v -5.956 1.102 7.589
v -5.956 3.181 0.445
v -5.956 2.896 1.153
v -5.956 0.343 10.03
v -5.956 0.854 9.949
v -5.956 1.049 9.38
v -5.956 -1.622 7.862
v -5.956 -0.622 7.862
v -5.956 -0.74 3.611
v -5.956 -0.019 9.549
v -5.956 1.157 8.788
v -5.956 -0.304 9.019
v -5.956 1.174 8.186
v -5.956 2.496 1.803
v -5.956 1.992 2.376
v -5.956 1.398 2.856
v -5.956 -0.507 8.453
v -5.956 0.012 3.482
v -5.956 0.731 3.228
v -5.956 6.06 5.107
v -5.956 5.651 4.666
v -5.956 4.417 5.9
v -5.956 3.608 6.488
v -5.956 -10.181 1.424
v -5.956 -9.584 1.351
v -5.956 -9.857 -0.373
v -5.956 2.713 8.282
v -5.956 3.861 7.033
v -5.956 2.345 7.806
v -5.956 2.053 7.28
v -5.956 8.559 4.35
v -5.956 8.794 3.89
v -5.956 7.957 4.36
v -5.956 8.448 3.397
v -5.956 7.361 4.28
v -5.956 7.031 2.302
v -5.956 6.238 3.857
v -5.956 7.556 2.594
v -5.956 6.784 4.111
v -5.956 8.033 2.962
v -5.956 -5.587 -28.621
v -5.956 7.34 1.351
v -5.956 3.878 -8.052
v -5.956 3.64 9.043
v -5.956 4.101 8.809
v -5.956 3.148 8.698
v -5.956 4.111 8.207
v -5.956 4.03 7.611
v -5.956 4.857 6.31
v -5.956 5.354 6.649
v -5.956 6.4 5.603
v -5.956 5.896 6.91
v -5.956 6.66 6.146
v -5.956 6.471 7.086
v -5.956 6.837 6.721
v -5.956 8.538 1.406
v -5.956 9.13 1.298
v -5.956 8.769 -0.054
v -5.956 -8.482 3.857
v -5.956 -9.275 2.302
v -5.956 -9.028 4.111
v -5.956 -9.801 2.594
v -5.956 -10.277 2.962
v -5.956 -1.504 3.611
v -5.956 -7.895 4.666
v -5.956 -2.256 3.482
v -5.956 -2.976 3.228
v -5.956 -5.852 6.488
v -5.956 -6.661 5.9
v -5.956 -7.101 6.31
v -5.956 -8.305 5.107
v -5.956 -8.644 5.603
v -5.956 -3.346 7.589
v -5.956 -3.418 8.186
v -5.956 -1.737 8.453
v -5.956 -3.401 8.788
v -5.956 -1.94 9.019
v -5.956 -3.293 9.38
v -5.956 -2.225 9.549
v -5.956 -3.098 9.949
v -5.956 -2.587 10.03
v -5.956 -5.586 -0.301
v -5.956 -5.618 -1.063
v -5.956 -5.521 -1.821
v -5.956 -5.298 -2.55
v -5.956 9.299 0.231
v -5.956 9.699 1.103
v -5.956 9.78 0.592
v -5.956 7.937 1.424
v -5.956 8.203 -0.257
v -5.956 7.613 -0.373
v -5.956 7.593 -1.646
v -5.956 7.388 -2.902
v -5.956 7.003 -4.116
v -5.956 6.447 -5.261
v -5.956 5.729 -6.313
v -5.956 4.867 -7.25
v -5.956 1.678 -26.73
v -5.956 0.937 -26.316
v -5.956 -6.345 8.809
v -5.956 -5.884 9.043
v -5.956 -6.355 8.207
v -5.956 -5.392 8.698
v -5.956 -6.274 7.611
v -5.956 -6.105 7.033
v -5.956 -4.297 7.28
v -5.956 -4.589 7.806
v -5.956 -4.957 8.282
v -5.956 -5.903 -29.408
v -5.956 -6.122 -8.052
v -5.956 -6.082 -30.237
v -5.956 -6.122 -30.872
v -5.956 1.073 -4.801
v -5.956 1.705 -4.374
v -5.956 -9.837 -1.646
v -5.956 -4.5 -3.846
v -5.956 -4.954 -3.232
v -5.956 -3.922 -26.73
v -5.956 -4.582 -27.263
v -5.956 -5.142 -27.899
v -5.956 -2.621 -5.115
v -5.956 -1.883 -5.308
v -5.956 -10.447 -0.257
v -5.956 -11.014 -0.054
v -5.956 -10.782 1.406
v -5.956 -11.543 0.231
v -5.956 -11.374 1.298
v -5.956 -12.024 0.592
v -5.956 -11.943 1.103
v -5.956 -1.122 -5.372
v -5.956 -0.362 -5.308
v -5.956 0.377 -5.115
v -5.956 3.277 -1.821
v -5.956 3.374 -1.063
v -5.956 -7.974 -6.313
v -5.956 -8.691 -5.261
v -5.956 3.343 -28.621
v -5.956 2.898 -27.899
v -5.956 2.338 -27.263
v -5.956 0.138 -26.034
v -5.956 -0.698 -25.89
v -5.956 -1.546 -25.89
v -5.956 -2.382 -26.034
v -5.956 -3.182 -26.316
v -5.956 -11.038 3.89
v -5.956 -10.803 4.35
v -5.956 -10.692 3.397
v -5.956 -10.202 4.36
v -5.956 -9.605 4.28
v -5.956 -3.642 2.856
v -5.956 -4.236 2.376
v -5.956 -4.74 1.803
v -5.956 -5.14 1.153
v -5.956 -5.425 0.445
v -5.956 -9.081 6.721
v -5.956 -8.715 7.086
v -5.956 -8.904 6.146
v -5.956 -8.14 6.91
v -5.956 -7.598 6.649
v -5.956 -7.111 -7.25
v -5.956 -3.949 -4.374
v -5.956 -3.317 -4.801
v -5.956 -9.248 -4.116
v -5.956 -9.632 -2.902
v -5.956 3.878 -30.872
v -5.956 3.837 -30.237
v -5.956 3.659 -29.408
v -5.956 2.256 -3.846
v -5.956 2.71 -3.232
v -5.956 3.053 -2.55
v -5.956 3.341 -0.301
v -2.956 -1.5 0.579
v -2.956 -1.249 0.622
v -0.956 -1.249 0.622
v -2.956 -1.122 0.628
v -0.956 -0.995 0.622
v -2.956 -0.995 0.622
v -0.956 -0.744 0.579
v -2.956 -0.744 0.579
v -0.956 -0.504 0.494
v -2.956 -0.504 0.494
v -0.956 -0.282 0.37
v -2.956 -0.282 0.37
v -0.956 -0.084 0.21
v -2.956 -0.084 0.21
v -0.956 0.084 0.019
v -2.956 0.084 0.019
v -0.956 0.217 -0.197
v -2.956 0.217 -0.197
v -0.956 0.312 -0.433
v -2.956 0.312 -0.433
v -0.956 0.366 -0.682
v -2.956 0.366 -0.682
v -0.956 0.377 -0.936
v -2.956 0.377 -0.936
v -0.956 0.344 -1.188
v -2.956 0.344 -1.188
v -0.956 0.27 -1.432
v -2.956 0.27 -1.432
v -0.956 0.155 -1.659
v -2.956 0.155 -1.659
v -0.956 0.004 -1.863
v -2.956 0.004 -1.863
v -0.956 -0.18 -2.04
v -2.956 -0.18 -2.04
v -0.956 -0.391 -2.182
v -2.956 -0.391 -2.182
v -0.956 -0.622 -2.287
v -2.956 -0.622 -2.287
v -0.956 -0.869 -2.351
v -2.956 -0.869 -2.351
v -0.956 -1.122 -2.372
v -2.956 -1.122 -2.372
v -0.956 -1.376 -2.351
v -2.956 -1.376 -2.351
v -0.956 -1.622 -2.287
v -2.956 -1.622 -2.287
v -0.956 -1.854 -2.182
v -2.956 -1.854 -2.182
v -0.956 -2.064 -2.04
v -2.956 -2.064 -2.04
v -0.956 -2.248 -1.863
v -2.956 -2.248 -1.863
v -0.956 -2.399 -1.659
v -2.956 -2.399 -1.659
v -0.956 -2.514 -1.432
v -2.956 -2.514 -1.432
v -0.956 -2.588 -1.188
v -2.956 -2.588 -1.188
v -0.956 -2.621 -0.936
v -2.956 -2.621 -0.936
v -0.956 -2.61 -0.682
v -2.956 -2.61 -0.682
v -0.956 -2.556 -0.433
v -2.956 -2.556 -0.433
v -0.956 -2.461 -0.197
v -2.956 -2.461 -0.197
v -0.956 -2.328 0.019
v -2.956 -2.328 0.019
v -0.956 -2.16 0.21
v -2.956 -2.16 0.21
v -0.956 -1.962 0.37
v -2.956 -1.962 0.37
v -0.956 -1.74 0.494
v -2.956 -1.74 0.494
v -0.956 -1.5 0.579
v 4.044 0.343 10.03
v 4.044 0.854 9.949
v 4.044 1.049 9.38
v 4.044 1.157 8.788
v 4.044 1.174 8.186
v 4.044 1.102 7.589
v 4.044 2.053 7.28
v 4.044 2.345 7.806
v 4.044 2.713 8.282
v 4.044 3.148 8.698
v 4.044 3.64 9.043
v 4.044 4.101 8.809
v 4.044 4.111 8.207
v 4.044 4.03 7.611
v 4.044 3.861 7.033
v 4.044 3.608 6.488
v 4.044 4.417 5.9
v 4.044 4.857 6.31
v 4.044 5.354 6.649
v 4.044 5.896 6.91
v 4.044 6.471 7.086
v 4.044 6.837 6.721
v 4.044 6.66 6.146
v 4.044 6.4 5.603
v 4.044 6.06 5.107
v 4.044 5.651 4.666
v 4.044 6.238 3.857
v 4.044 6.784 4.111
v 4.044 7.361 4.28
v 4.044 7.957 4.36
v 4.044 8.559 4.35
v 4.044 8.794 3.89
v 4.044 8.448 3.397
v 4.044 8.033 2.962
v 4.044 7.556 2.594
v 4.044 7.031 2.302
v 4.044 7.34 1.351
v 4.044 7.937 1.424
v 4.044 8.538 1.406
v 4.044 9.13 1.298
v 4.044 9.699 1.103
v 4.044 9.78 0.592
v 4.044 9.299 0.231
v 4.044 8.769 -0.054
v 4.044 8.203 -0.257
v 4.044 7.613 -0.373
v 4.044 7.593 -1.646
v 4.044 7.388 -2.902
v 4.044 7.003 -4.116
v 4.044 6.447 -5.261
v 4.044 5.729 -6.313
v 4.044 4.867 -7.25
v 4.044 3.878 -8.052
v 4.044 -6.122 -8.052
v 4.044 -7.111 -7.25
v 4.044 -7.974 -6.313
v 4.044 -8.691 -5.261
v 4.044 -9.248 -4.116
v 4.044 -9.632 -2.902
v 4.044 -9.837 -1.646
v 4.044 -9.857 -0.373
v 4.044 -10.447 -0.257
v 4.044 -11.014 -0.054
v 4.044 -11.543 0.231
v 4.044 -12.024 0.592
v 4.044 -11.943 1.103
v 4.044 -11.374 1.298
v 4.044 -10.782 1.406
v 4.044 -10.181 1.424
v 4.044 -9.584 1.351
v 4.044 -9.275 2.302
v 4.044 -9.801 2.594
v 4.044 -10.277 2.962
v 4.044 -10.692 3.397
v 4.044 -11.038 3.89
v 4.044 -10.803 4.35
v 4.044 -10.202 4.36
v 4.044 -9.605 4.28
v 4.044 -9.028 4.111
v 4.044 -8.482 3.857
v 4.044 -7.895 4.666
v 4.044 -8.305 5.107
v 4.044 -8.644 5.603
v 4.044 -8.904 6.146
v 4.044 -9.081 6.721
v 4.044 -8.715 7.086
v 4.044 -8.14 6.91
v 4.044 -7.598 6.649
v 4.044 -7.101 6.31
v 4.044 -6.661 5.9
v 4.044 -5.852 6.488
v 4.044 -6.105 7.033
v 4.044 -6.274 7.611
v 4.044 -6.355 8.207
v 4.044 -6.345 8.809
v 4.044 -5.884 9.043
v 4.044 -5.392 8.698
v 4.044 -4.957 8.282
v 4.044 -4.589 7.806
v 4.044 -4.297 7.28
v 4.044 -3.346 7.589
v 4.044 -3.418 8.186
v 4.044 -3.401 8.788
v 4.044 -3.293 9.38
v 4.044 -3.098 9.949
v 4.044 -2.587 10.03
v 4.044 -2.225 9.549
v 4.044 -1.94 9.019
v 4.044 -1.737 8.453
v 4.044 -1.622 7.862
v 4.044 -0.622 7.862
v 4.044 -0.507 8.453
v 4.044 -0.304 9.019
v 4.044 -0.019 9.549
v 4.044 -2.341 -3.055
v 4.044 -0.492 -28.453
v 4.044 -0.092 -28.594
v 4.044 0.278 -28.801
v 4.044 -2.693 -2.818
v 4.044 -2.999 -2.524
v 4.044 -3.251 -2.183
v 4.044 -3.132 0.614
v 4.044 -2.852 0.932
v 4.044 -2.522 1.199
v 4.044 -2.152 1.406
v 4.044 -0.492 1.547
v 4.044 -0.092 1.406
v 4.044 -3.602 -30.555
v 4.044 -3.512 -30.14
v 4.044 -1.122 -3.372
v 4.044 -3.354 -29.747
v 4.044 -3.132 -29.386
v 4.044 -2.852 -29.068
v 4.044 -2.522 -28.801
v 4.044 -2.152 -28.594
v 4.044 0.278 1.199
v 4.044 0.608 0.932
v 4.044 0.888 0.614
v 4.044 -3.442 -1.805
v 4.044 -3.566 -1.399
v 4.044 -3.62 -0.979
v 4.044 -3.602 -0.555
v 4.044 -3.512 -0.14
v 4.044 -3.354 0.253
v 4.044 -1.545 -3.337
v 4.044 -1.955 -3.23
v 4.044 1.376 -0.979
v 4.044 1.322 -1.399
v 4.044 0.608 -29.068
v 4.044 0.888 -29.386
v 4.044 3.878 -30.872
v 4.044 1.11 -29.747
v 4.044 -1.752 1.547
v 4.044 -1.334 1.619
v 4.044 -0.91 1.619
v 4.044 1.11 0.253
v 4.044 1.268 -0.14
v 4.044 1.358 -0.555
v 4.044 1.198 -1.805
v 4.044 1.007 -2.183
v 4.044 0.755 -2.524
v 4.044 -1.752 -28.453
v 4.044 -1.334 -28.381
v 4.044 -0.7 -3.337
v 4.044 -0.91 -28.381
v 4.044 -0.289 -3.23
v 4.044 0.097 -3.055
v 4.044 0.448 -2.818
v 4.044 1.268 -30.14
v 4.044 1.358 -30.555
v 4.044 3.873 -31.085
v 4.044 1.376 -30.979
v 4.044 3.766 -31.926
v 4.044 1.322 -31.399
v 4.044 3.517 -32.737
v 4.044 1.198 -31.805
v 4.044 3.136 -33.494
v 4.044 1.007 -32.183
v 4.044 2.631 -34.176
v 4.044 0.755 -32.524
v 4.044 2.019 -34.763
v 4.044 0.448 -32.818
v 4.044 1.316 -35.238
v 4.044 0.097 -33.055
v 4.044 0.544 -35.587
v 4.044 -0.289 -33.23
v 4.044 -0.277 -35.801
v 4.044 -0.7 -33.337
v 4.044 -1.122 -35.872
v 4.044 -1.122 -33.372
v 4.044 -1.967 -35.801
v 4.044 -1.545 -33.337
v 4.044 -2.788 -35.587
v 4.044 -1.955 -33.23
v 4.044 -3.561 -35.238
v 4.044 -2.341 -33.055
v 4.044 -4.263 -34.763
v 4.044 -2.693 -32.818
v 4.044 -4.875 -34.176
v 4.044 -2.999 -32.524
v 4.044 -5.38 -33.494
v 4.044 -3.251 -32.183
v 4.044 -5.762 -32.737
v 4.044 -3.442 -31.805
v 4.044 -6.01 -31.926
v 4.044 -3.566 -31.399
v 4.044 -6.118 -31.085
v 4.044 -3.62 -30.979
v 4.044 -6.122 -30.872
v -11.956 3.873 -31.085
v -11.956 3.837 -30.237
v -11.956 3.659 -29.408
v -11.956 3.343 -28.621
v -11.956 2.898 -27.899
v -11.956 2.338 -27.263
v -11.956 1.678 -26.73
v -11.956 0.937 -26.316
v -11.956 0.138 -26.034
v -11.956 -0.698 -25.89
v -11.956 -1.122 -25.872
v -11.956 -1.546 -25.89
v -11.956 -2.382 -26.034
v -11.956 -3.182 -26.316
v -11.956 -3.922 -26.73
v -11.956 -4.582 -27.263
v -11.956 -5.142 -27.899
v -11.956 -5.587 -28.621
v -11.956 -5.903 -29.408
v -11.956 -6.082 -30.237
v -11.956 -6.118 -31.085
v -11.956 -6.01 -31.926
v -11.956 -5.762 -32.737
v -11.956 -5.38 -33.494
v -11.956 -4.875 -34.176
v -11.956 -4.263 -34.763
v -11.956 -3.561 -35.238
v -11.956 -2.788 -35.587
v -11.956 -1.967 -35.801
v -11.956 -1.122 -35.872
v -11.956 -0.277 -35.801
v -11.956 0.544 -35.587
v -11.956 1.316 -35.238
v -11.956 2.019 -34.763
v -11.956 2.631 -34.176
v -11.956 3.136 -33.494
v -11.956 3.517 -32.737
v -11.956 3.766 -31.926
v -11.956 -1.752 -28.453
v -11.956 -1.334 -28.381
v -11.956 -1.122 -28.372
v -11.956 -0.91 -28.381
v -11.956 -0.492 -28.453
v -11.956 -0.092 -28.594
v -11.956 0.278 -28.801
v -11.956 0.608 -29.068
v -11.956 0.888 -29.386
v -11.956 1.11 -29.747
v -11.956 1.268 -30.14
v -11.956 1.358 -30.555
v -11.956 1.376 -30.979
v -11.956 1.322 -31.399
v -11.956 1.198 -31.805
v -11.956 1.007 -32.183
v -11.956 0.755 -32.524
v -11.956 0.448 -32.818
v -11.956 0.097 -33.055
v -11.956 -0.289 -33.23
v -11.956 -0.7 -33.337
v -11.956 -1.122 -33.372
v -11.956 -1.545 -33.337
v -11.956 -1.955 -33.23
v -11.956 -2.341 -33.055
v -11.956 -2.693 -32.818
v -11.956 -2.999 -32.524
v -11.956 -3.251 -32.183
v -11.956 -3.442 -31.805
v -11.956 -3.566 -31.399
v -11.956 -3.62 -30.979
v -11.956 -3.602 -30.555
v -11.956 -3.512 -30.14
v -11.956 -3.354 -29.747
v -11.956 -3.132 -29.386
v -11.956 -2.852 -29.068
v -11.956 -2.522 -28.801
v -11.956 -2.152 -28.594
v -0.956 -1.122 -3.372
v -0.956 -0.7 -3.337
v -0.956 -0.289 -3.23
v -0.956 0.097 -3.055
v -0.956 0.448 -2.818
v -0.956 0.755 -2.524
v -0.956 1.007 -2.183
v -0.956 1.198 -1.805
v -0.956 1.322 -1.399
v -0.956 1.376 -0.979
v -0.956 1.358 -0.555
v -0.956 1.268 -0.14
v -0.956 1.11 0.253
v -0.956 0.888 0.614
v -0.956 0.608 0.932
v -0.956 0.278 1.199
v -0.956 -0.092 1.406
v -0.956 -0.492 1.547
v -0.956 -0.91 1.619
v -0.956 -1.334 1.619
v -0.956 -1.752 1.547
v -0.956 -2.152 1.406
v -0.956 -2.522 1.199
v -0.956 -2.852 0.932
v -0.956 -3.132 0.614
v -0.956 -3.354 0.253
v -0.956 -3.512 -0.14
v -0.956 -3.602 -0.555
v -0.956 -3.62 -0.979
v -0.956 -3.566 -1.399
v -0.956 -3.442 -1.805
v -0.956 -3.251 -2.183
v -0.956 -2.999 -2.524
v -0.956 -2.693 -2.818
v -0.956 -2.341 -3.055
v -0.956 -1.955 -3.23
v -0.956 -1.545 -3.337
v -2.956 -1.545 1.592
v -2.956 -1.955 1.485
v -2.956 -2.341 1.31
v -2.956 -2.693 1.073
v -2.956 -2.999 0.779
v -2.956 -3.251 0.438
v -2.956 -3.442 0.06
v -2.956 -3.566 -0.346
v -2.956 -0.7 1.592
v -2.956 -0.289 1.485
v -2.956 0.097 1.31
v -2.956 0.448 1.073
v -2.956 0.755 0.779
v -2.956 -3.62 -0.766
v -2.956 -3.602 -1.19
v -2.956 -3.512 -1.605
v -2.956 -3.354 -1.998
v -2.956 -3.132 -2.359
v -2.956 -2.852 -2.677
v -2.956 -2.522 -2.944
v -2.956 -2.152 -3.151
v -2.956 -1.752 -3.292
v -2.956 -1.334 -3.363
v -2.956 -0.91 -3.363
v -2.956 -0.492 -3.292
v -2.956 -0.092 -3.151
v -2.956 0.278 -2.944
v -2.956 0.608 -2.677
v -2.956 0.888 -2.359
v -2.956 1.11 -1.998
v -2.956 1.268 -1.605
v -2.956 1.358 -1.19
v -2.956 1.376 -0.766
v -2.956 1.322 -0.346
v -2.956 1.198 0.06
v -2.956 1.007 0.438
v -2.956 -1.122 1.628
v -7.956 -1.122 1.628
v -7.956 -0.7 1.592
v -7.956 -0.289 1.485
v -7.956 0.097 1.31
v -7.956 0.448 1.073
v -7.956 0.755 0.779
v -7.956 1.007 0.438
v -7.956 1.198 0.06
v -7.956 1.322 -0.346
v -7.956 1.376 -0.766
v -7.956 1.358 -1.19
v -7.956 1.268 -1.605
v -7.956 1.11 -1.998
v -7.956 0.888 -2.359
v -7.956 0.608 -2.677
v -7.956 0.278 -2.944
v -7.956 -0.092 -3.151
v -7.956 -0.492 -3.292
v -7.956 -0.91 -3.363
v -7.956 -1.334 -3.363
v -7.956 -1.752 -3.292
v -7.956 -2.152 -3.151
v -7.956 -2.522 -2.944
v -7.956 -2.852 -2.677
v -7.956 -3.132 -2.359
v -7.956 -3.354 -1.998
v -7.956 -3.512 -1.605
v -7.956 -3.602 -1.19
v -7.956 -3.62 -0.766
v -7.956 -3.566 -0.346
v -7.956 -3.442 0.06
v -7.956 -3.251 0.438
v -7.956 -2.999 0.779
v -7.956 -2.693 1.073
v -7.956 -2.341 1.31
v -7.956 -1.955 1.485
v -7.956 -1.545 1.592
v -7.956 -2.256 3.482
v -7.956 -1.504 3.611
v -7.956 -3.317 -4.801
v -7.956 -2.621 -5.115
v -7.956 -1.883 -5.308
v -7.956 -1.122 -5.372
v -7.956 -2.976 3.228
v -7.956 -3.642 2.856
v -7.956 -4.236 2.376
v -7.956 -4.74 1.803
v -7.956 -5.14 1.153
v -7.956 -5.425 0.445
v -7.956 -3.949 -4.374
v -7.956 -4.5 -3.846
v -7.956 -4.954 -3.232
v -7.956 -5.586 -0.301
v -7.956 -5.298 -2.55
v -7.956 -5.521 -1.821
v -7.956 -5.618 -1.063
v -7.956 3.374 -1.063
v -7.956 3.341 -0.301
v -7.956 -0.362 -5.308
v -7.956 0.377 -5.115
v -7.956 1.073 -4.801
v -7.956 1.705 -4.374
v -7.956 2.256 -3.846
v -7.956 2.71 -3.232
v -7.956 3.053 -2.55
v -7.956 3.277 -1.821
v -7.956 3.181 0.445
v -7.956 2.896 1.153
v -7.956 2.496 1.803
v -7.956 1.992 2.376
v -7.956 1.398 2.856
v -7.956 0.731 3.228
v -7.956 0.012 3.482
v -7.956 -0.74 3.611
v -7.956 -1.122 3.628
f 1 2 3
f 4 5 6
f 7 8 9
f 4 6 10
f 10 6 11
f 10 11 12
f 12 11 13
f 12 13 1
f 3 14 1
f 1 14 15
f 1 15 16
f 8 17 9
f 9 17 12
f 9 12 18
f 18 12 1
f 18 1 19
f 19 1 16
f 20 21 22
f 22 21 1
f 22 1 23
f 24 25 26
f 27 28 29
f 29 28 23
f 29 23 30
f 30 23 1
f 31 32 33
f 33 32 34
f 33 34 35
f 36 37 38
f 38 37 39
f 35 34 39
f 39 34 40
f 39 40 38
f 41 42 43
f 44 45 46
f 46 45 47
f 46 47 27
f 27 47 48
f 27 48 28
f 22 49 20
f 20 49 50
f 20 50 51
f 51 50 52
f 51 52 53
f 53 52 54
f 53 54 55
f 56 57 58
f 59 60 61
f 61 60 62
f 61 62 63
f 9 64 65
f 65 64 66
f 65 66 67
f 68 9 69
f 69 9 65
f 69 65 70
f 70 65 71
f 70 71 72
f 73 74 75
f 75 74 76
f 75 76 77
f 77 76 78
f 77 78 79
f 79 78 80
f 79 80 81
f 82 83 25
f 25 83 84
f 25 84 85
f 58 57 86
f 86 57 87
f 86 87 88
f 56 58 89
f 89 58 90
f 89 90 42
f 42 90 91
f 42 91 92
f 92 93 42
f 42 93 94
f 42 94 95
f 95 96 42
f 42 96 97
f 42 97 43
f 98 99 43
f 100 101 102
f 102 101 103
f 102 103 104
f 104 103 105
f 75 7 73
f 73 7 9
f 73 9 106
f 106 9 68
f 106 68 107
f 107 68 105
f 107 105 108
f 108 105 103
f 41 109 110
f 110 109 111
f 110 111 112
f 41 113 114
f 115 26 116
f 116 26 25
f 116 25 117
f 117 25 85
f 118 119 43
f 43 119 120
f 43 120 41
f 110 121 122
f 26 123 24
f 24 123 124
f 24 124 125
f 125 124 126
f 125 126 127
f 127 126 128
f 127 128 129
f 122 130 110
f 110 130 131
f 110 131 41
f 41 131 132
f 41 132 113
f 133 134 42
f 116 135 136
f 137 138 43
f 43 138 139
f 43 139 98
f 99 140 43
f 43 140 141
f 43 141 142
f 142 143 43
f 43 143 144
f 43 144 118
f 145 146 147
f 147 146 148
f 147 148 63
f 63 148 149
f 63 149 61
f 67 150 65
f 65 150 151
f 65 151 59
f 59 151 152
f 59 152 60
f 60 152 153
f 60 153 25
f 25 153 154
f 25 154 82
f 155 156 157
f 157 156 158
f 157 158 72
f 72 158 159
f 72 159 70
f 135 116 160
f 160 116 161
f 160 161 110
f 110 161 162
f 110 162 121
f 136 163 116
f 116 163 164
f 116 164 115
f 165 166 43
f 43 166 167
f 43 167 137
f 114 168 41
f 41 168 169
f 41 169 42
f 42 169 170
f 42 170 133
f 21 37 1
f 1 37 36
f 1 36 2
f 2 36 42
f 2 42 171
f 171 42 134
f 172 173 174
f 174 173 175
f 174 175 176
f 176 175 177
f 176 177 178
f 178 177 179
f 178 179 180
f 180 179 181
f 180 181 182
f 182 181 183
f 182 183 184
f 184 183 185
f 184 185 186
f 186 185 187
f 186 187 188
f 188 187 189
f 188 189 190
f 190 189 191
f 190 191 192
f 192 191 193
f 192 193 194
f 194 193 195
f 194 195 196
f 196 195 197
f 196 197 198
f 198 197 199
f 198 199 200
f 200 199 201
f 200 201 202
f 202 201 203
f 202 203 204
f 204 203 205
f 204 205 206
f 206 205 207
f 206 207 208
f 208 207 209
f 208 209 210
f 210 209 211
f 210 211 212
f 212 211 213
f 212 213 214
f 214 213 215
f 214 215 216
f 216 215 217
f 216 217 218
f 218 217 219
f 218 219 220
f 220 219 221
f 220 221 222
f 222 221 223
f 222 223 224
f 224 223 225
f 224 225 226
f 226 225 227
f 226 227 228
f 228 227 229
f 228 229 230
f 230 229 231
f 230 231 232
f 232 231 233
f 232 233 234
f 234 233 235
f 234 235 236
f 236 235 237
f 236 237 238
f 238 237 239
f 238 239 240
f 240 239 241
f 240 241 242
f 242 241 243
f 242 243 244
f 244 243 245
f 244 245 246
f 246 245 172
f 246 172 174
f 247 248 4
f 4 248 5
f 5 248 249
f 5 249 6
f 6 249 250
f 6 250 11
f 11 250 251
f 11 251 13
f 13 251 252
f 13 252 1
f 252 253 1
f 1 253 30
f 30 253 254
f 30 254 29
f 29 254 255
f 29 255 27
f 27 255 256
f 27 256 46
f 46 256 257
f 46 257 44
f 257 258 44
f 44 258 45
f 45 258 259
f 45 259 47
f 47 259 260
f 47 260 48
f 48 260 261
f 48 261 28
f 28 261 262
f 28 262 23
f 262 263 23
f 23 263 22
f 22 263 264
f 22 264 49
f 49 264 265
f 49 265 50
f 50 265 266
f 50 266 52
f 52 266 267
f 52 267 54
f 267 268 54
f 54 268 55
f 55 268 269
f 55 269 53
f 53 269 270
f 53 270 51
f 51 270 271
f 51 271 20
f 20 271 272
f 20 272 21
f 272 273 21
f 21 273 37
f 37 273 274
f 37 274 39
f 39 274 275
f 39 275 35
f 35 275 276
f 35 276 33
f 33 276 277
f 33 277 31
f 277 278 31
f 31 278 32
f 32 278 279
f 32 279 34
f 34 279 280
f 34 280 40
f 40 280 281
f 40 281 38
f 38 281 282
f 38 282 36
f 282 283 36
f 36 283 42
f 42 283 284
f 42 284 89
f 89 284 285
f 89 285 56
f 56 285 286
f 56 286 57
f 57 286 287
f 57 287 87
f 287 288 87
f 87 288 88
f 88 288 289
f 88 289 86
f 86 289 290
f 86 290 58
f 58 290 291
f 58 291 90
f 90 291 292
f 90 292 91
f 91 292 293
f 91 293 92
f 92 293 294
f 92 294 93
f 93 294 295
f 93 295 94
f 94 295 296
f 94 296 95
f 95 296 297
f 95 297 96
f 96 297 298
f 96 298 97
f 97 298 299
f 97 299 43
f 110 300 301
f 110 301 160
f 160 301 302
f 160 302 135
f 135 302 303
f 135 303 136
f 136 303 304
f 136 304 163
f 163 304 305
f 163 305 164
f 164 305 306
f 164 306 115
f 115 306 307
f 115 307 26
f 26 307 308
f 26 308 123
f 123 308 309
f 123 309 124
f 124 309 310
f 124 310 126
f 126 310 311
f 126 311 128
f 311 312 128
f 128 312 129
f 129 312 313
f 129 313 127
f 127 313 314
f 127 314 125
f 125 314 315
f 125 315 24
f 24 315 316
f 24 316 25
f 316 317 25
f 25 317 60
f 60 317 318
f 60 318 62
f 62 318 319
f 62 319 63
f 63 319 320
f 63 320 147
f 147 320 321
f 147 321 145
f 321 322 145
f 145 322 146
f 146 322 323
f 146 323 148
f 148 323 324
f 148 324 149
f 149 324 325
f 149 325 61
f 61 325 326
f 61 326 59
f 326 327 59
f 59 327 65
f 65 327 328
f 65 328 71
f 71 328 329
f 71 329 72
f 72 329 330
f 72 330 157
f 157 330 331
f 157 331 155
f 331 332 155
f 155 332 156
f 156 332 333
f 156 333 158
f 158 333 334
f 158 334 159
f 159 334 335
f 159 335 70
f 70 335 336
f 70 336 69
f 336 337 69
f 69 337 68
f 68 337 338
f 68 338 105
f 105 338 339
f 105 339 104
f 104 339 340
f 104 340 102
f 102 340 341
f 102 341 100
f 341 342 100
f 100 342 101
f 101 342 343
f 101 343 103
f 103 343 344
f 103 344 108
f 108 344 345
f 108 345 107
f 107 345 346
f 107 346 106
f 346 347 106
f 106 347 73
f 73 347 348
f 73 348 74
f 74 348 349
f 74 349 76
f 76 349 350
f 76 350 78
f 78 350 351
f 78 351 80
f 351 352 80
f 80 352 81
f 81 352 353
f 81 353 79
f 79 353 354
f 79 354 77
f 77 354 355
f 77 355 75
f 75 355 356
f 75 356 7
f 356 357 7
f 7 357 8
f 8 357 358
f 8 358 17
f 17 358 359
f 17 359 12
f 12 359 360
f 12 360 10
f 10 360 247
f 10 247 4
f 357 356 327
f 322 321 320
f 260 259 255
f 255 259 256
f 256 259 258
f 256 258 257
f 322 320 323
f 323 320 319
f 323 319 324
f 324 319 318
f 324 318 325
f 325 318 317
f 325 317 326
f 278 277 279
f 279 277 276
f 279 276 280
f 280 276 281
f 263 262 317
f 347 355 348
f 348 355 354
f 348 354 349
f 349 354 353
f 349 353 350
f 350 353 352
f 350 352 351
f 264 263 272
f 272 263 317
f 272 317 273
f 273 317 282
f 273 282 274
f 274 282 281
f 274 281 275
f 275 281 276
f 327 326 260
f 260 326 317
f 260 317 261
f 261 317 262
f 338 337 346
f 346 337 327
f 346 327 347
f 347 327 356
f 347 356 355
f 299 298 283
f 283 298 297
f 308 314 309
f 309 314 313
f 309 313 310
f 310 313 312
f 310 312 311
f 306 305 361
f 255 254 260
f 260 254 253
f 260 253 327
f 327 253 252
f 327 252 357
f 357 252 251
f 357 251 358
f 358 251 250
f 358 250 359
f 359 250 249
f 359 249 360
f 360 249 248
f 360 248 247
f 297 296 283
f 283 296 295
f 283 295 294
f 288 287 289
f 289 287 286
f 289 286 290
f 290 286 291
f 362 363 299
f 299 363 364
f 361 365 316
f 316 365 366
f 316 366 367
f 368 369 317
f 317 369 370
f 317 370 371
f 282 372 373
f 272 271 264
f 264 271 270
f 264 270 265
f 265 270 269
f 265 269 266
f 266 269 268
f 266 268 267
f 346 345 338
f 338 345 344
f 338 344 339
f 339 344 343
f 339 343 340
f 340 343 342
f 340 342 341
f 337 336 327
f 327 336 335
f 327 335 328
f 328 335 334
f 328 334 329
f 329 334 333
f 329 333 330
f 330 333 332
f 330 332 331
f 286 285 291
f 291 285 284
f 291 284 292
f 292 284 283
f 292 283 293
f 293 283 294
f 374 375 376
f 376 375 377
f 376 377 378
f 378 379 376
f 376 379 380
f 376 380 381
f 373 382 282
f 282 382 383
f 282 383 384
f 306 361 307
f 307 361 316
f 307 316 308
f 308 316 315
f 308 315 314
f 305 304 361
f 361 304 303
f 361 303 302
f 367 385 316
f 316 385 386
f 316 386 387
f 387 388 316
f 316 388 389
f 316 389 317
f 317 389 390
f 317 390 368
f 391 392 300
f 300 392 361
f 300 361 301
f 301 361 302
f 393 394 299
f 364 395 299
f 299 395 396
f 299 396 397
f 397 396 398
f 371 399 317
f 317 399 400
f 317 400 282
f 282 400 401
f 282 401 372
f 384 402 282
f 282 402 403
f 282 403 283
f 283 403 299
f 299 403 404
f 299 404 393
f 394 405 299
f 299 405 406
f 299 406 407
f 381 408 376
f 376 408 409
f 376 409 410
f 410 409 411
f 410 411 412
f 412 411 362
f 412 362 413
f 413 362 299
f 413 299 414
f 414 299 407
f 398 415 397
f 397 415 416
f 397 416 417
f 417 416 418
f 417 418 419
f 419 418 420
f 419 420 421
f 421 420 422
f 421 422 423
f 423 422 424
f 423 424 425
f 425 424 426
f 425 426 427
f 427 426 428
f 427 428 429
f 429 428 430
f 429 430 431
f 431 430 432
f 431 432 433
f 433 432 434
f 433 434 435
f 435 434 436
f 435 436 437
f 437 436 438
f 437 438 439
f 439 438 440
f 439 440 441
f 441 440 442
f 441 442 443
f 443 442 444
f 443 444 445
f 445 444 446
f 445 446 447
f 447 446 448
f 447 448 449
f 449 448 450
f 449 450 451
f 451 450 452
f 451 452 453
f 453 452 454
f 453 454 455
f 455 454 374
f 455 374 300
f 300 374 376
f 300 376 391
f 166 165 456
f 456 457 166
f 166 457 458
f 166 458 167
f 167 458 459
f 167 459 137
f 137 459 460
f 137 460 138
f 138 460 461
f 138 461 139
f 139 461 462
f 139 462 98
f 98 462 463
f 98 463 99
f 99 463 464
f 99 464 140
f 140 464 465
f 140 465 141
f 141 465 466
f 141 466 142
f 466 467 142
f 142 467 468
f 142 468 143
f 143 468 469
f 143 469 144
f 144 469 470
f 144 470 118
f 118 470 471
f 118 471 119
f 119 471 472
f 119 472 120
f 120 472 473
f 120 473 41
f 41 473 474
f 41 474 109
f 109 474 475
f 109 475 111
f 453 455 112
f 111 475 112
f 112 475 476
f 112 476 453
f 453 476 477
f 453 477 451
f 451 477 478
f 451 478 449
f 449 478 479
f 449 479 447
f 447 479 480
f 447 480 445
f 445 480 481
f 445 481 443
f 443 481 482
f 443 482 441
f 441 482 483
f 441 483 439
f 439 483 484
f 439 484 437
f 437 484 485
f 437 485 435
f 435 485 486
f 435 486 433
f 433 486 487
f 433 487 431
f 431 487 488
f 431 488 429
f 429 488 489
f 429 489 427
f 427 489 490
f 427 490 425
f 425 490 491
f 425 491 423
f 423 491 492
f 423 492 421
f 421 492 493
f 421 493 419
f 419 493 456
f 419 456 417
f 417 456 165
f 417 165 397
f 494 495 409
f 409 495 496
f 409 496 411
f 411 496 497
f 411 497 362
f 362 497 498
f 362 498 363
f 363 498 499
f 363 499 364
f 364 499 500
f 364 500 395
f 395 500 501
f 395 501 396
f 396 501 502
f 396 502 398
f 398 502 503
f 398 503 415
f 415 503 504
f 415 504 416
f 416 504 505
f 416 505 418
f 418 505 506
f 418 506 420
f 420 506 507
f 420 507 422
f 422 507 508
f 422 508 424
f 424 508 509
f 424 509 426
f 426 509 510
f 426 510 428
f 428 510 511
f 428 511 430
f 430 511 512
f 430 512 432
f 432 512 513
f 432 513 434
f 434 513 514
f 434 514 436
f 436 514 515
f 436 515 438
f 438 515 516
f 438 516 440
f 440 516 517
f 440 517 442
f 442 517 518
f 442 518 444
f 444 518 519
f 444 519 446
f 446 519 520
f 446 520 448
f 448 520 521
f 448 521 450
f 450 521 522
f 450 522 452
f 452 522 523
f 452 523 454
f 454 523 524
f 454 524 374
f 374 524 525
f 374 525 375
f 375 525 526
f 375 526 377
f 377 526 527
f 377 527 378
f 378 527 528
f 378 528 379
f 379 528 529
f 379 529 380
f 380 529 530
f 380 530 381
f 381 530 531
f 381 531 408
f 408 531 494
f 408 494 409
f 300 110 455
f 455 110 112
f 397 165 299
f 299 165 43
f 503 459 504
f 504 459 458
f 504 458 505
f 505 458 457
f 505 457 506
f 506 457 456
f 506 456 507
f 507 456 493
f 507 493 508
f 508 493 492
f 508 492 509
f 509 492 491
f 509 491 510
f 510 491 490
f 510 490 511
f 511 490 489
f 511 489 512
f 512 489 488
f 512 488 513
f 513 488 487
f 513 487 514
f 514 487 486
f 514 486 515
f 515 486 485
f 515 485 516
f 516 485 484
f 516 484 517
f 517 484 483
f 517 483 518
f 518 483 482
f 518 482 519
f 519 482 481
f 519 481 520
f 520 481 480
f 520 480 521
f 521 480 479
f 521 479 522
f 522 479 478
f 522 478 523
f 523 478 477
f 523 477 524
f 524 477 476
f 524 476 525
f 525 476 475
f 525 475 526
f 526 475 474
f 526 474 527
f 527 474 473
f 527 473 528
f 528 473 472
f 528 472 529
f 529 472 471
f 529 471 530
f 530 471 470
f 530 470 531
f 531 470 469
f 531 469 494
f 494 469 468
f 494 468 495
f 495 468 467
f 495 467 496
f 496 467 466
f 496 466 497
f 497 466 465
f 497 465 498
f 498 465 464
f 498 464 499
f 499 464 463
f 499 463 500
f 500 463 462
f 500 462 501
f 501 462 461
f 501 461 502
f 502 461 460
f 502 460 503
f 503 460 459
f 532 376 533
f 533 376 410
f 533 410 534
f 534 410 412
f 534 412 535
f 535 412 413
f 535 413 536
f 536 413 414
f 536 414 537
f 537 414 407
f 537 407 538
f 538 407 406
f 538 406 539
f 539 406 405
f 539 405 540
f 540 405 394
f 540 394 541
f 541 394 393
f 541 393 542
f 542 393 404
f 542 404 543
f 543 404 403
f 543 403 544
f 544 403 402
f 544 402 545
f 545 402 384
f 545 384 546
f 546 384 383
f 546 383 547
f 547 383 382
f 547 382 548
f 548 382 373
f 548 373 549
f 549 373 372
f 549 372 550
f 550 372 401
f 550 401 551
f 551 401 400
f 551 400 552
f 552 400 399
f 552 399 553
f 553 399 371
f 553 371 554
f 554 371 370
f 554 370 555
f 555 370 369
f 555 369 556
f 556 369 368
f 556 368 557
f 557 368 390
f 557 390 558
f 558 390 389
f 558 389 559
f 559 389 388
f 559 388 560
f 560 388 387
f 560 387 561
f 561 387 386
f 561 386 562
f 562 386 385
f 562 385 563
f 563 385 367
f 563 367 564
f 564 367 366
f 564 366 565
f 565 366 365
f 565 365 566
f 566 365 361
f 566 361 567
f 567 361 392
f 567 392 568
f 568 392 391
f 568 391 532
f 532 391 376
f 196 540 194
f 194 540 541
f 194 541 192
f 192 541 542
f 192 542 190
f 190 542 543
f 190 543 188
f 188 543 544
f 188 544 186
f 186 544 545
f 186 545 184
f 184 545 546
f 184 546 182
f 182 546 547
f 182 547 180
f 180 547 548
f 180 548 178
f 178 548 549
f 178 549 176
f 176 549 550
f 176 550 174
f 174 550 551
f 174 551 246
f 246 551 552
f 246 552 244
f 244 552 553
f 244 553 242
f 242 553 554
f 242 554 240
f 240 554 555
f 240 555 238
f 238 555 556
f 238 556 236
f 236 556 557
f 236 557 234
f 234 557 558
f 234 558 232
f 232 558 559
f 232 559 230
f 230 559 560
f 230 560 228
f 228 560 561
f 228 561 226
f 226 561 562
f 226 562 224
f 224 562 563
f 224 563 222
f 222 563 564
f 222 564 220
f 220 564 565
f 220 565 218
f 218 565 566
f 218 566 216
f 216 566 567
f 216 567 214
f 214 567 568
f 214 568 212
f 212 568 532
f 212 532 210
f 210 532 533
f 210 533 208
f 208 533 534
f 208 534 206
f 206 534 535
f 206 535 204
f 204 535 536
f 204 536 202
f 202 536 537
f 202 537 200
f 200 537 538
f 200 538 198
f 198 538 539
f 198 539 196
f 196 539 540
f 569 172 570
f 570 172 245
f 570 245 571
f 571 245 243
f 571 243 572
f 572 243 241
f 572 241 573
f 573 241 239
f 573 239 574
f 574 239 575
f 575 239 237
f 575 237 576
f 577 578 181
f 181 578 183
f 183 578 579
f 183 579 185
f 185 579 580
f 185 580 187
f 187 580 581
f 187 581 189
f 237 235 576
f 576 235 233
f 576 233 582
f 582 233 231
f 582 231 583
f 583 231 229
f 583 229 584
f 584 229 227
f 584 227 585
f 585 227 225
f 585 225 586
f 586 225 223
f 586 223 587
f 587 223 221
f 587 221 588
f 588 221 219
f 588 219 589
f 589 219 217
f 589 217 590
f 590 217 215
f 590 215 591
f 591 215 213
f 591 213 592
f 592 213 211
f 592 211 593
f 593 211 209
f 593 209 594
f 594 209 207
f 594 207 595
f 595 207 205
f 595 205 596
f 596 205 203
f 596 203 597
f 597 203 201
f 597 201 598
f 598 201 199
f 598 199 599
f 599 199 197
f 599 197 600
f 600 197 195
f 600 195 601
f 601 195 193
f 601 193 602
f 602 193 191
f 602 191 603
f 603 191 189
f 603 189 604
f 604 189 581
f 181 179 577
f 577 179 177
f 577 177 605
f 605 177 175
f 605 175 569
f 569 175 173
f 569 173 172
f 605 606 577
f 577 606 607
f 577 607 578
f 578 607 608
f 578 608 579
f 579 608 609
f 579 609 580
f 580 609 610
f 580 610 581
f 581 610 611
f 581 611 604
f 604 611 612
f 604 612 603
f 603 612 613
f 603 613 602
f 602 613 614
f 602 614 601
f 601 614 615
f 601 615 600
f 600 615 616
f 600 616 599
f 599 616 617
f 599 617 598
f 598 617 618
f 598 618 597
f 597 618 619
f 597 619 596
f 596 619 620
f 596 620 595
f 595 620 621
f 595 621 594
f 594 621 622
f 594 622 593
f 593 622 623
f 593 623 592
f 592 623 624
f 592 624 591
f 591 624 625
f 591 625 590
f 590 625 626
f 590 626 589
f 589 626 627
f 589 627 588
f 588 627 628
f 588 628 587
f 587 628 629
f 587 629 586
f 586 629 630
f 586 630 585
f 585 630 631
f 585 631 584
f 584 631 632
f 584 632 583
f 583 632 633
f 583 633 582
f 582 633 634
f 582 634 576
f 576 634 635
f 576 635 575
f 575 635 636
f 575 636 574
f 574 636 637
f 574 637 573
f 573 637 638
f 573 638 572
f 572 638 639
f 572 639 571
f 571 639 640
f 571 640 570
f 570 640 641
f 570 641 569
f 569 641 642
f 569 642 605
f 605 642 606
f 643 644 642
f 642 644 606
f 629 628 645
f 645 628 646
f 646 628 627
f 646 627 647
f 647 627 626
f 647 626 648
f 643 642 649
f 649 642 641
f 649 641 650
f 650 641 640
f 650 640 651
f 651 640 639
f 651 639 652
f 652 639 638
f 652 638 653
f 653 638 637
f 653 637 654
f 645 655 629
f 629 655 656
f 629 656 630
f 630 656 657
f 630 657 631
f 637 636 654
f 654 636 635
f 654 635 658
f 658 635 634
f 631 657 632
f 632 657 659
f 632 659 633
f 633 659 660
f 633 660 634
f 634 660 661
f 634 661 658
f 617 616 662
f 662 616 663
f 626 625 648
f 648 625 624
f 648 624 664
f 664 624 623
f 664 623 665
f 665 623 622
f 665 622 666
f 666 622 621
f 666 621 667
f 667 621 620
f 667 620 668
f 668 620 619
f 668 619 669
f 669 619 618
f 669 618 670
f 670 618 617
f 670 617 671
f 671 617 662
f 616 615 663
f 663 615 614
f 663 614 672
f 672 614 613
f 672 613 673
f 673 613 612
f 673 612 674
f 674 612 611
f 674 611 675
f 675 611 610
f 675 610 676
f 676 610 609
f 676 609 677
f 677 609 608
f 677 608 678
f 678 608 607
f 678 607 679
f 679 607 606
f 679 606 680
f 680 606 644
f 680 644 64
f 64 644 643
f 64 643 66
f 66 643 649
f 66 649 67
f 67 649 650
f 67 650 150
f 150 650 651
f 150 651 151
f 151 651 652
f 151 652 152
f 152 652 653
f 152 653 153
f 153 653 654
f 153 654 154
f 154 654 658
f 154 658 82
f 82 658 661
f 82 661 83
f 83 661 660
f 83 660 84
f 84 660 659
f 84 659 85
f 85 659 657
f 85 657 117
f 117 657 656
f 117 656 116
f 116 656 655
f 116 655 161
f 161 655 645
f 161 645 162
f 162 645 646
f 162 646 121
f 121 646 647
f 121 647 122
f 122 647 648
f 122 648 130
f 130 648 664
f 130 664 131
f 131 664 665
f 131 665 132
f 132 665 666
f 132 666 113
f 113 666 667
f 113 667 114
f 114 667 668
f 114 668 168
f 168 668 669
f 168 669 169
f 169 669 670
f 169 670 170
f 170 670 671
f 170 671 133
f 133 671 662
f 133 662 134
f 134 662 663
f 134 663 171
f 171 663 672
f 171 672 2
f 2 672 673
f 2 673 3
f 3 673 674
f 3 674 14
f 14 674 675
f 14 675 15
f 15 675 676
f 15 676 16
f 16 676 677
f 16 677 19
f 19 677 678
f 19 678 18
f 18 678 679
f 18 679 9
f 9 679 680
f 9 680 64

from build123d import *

# Parameters (mm, degrees)
SKETCH1_R           = 2.5
BOSS_EXTRUDE1_DEPTH = 10
SKETCH2_R           = 2.5
BOSS_EXTRUDE2_DEPTH = 10
SKETCH3_R           = 5
SKETCH3_R_2         = 2.5
BOSS_EXTRUDE3_DEPTH = 6
SKETCH4_R           = 2.5
CUT_EXTRUDE1_DEPTH  = 5
SKETCH6_R           = 1.5
CUT_EXTRUDE2_DEPTH  = 40.400672482
CUT_EXTRUDE3_START  = -3
SKETCH7_R           = 2.5
CUT_EXTRUDE3_DEPTH  = 3
SKETCH8_R           = 4.5
SKETCH8_R_2         = 2.5
BOSS_EXTRUDE4_DEPTH = 2
CUT_EXTRUDE4_DEPTH  = 42.078132772


with BuildPart() as part:
    # Sketch1 → Boss-Extrude1 (new body)
    with BuildSketch(Plane(origin=(4.043870029, 0, 0), x_dir=(0, 0, -1), z_dir=(1, 0, 0))):
        with BuildLine():
            ThreePointArc((-10.029541992, 0.342879069), (-9.019080639, -0.304016541), (-7.862233613, -0.622153359))
            ThreePointArc((-7.862233613, -0.622153359), (-7.876528296, -1.122077366), (-7.862233613, -1.622001374))
            ThreePointArc((-7.862233613, -1.622001374), (-9.019080639, -1.940138191), (-10.029541992, -2.587033801))
            ThreePointArc((-10.029541992, -2.587033801), (-9.992100042, -2.842856482), (-9.948655897, -3.097728508))
            ThreePointArc((-9.948655897, -3.097728508), (-8.787748306, -3.400713063), (-7.58921172, -3.345793765))
            ThreePointArc((-7.58921172, -3.345793765), (-7.448321757, -3.82566705), (-7.280241692, -4.296705735))
            ThreePointArc((-7.280241692, -4.296705735), (-8.282158911, -4.956757219), (-9.043263028, -5.884241235))
            ThreePointArc((-9.043263028, -5.884241235), (-8.928600062, -6.115972863), (-8.808522437, -6.344945585))
            ThreePointArc((-8.808522437, -6.344945585), (-7.610806331, -6.274360846), (-6.487901298, -5.851761317))
            ThreePointArc((-6.487901298, -5.851761317), (-6.20561798, -6.264610538), (-5.90020538, -6.660655353))
            ThreePointArc((-5.90020538, -6.660655353), (-6.649118154, -7.598011066), (-7.086362862, -8.715294889))
            ThreePointArc((-7.086362862, -8.715294889), (-6.905702889, -8.900251959), (-6.720745819, -9.080911932))
            ThreePointArc((-6.720745819, -9.080911932), (-5.603461996, -8.643667224), (-4.666106283, -7.89475445))
            ThreePointArc((-4.666106283, -7.89475445), (-4.270061468, -8.20016705), (-3.857212247, -8.482450368))
            ThreePointArc((-3.857212247, -8.482450368), (-4.279811776, -9.605355401), (-4.350396515, -10.803071507))
            ThreePointArc((-4.350396515, -10.803071507), (-4.121423793, -10.923149132), (-3.889692165, -11.037812099))
            ThreePointArc((-3.889692165, -11.037812099), (-2.962208149, -10.276707981), (-2.302156665, -9.274790762))
            ThreePointArc((-2.302156665, -9.274790762), (-1.83111798, -9.442870827), (-1.351244695, -9.583760791))
            ThreePointArc((-1.351244695, -9.583760791), (-1.406163992, -10.782297376), (-1.103179437, -11.943204968))
            ThreePointArc((-1.103179437, -11.943204968), (-0.848307411, -11.986649113), (-0.592484731, -12.024091063))
            ThreePointArc((-0.592484731, -12.024091063), (0.054410879, -11.01362971), (0.372547697, -9.856782684))
            ThreePointArc((0.372547697, -9.856782684), (0.872471704, -9.871077366), (1.372395712, -9.856782684))
            ThreePointArc((1.372395712, -9.856782684), (1.690532529, -11.01362971), (2.337428139, -12.024091063))
            ThreePointArc((2.337428139, -12.024091063), (2.59325082, -11.986649113), (2.848122846, -11.943204968))
            ThreePointArc((2.848122846, -11.943204968), (3.151107401, -10.782297376), (3.096188103, -9.583760791))
            ThreePointArc((3.096188103, -9.583760791), (3.576061388, -9.442870827), (4.047100073, -9.274790762))
            ThreePointArc((4.047100073, -9.274790762), (4.707151558, -10.276707981), (5.634635573, -11.037812099))
            ThreePointArc((5.634635573, -11.037812099), (5.866367201, -10.923149132), (6.095339923, -10.803071507))
            ThreePointArc((6.095339923, -10.803071507), (6.024755184, -9.605355401), (5.602155655, -8.482450368))
            ThreePointArc((5.602155655, -8.482450368), (6.015004877, -8.20016705), (6.411049691, -7.89475445))
            ThreePointArc((6.411049691, -7.89475445), (7.348405404, -8.643667224), (8.465689227, -9.080911932))
            ThreePointArc((8.465689227, -9.080911932), (8.650646297, -8.900251959), (8.83130627, -8.715294889))
            ThreePointArc((8.83130627, -8.715294889), (8.394061563, -7.598011066), (7.645148788, -6.660655353))
            ThreePointArc((7.645148788, -6.660655353), (7.950561388, -6.264610538), (8.232844706, -5.851761317))
            ThreePointArc((8.232844706, -5.851761317), (9.355749739, -6.274360846), (10.553465846, -6.344945585))
            ThreePointArc((10.553465846, -6.344945585), (10.67354347, -6.115972863), (10.788206437, -5.884241235))
            ThreePointArc((10.788206437, -5.884241235), (10.02710232, -4.956757219), (9.0251851, -4.296705735))
            ThreePointArc((9.0251851, -4.296705735), (9.193265165, -3.82566705), (9.334155129, -3.345793765))
            ThreePointArc((9.334155129, -3.345793765), (10.532691714, -3.400713063), (11.693599306, -3.097728508))
            ThreePointArc((11.693599306, -3.097728508), (11.737043451, -2.842856482), (11.774485401, -2.587033801))
            ThreePointArc((11.774485401, -2.587033801), (10.764024048, -1.940138191), (9.607177022, -1.622001374))
            ThreePointArc((9.607177022, -1.622001374), (9.621471704, -1.122077366), (9.607177022, -0.622153359))
            ThreePointArc((9.607177022, -0.622153359), (10.764024048, -0.304016541), (11.774485401, 0.342879069))
            ThreePointArc((11.774485401, 0.342879069), (11.737043451, 0.598701749), (11.693599306, 0.853573775))
            ThreePointArc((11.693599306, 0.853573775), (10.532691714, 1.156558331), (9.334155129, 1.101639033))
            ThreePointArc((9.334155129, 1.101639033), (9.193265165, 1.581512318), (9.0251851, 2.052551003))
            ThreePointArc((9.0251851, 2.052551003), (10.02710232, 2.712602487), (10.788206437, 3.640086503))
            ThreePointArc((10.788206437, 3.640086503), (10.67354347, 3.871818131), (10.553465846, 4.100790853))
            ThreePointArc((10.553465846, 4.100790853), (9.355749739, 4.030206114), (8.232844706, 3.607606585))
            ThreePointArc((8.232844706, 3.607606585), (7.950561388, 4.020455806), (7.645148788, 4.416500621))
            ThreePointArc((7.645148788, 4.416500621), (8.394061563, 5.353856334), (8.83130627, 6.471140157))
            ThreePointArc((8.83130627, 6.471140157), (8.650646297, 6.656097227), (8.465689227, 6.8367572))
            ThreePointArc((8.465689227, 6.8367572), (7.348405404, 6.399512492), (6.411049691, 5.650599718))
            ThreePointArc((6.411049691, 5.650599718), (6.015004877, 5.956012318), (5.602155655, 6.238295636))
            ThreePointArc((5.602155655, 6.238295636), (6.024755184, 7.361200669), (6.095339923, 8.558916775))
            ThreePointArc((6.095339923, 8.558916775), (5.866367201, 8.6789944), (5.634635573, 8.793657366))
            ThreePointArc((5.634635573, 8.793657366), (4.707151558, 8.032553249), (4.047100073, 7.03063603))
            ThreePointArc((4.047100073, 7.03063603), (3.576061388, 7.198716095), (3.096188103, 7.339606058))
            ThreePointArc((3.096188103, 7.339606058), (3.151107401, 8.538142644), (2.848122846, 9.699050235))
            ThreePointArc((2.848122846, 9.699050235), (2.59325082, 9.74249438), (2.337428139, 9.779936331))
            ThreePointArc((2.337428139, 9.779936331), (1.690532529, 8.769474978), (1.372395712, 7.612627952))
            ThreePointArc((1.372395712, 7.612627952), (0.872471704, 7.626922634), (0.372547697, 7.612627952))
            ThreePointArc((0.372547697, 7.612627952), (0.054410879, 8.769474978), (-0.592484731, 9.779936331))
            ThreePointArc((-0.592484731, 9.779936331), (-0.848307411, 9.74249438), (-1.103179437, 9.699050235))
            ThreePointArc((-1.103179437, 9.699050235), (-1.406163992, 8.538142644), (-1.351244695, 7.339606058))
            ThreePointArc((-1.351244695, 7.339606058), (-1.83111798, 7.198716095), (-2.302156665, 7.03063603))
            ThreePointArc((-2.302156665, 7.03063603), (-2.962208149, 8.032553249), (-3.889692165, 8.793657366))
            ThreePointArc((-3.889692165, 8.793657366), (-4.121423793, 8.6789944), (-4.350396515, 8.558916775))
            ThreePointArc((-4.350396515, 8.558916775), (-4.279811776, 7.361200669), (-3.857212247, 6.238295636))
            ThreePointArc((-3.857212247, 6.238295636), (-4.270061468, 5.956012318), (-4.666106283, 5.650599718))
            ThreePointArc((-4.666106283, 5.650599718), (-5.603461996, 6.399512492), (-6.720745819, 6.8367572))
            ThreePointArc((-6.720745819, 6.8367572), (-6.905702889, 6.656097227), (-7.086362862, 6.471140157))
            ThreePointArc((-7.086362862, 6.471140157), (-6.649118154, 5.353856334), (-5.90020538, 4.416500621))
            ThreePointArc((-5.90020538, 4.416500621), (-6.20561798, 4.020455806), (-6.487901298, 3.607606585))
            ThreePointArc((-6.487901298, 3.607606585), (-7.610806331, 4.030206114), (-8.808522437, 4.100790853))
            ThreePointArc((-8.808522437, 4.100790853), (-8.928600062, 3.871818131), (-9.043263028, 3.640086503))
            ThreePointArc((-9.043263028, 3.640086503), (-8.282158911, 2.712602487), (-7.280241692, 2.052551003))
            ThreePointArc((-7.280241692, 2.052551003), (-7.448321757, 1.581512318), (-7.58921172, 1.101639033))
            ThreePointArc((-7.58921172, 1.101639033), (-8.787748306, 1.156558331), (-9.948655897, 0.853573775))
            ThreePointArc((-9.948655897, 0.853573775), (-9.992100042, 0.598701749), (-10.029541992, 0.342879069))
        make_face()
        with Locations(Location((0.872471704, -1.122077366, 0), (0, 0, 180))):
            Circle(SKETCH1_R, mode=Mode.SUBTRACT)
    extrude(amount=-BOSS_EXTRUDE1_DEPTH)

    # Sketch2 → Boss-Extrude2 (add)
    with BuildSketch(Plane(origin=(4.043870029, 0, 0), x_dir=(0, 0, -1), z_dir=(1, 0, 0))):
        with BuildLine():
            Line((0.872471704, 3.877922634), (30.872471704, 3.877922634))
            ThreePointArc((30.872471704, 3.877922634), (35.872471704, -1.122077366), (30.872471704, -6.122077366))
            Line((30.872471704, -6.122077366), (0.872471704, -6.122077366))
            ThreePointArc((0.872471704, -6.122077366), (-4.127528296, -1.122077366), (0.872471704, 3.877922634))
        make_face()
        with Locations((30.872471704, -1.122077366)):
            Circle(SKETCH2_R, mode=Mode.SUBTRACT)
    extrude(amount=-BOSS_EXTRUDE2_DEPTH)

    # Sketch3 → Boss-Extrude3 (add)
    with BuildSketch(Plane.ZY.offset(5.956129971)):
        with Locations(Location((-30.872471704, -1.122077366, 0), (0, 0, 270))):
            Circle(SKETCH3_R)
        with Locations(Location((-30.872471704, -1.122077366, 0), (0, 0, 180))):
            Circle(SKETCH3_R_2, mode=Mode.SUBTRACT)
    extrude(amount=BOSS_EXTRUDE3_DEPTH)

    # Sketch4 → Cut-Extrude1 (cut)
    with BuildSketch(Plane(origin=(4.043870029, 0, 0), x_dir=(0, 0, -1), z_dir=(1, 0, 0))):
        with Locations((0.872471704, -1.122077366)):
            Circle(SKETCH4_R)
    extrude(amount=-CUT_EXTRUDE1_DEPTH, mode=Mode.SUBTRACT)

    # Sketch6 → Cut-Extrude2 (cut, through all)
    with BuildSketch(Plane(origin=(-0.956129971, 0, 0), x_dir=(0, 0, -1), z_dir=(1, 0, 0))):
        with Locations((0.872471704, -1.122077366)):
            Circle(SKETCH6_R)
    extrude(amount=-CUT_EXTRUDE2_DEPTH, mode=Mode.SUBTRACT)

    # Sketch7 → Cut-Extrude3 (cut)
    with BuildSketch(Plane.ZY.offset(5.956129971).offset(CUT_EXTRUDE3_START)):
        with Locations(Location((-0.872471704, -1.122077366, 0), (0, 0, 180))):
            Circle(SKETCH7_R)
    extrude(amount=CUT_EXTRUDE3_DEPTH, mode=Mode.SUBTRACT)

    # Sketch8 → Boss-Extrude4 (add)
    with BuildSketch(Plane.ZY.offset(5.956129971)):
        with Locations(Location((-0.872471704, -1.122077366, 0), (0, 0, 180))):
            Circle(SKETCH8_R)
        with Locations(Location((-0.872471704, -1.122077366, 0), (0, 0, 180))):
            Circle(SKETCH8_R_2, mode=Mode.SUBTRACT)
    extrude(amount=BOSS_EXTRUDE4_DEPTH)

    # Sketch9 → Cut-Extrude4 (cut, through all)
    with BuildSketch(Plane(origin=(4.043870029, 0, 0), x_dir=(0, 0, -1), z_dir=(1, 0, 0))):
        with BuildLine():
            Line((11.302349515, -6.122077366), (8.051956435, -6.122077366))
            ThreePointArc((8.051956435, -6.122077366), (4.922163112, -8.877398152), (0.872471704, -9.871077366))
            Line((0.872471704, -9.871077366), (0.872471704, -12.68850945))
            ThreePointArc((0.872471704, -12.68850945), (7.034865343, -10.910195458), (11.302349515, -6.122077366))
        make_face()
        with BuildLine():
            Line((11.302349515, 3.877922634), (8.051956435, 3.877922634))
            ThreePointArc((8.051956435, 3.877922634), (4.922163112, 6.63324342), (0.872471704, 7.626922634))
            Line((0.872471704, 7.626922634), (0.872471704, 10.444354718))
            ThreePointArc((0.872471704, 10.444354718), (7.034865343, 8.666040726), (11.302349515, 3.877922634))
        make_face()
    extrude(amount=-CUT_EXTRUDE4_DEPTH, mode=Mode.SUBTRACT)


solid = part.part
